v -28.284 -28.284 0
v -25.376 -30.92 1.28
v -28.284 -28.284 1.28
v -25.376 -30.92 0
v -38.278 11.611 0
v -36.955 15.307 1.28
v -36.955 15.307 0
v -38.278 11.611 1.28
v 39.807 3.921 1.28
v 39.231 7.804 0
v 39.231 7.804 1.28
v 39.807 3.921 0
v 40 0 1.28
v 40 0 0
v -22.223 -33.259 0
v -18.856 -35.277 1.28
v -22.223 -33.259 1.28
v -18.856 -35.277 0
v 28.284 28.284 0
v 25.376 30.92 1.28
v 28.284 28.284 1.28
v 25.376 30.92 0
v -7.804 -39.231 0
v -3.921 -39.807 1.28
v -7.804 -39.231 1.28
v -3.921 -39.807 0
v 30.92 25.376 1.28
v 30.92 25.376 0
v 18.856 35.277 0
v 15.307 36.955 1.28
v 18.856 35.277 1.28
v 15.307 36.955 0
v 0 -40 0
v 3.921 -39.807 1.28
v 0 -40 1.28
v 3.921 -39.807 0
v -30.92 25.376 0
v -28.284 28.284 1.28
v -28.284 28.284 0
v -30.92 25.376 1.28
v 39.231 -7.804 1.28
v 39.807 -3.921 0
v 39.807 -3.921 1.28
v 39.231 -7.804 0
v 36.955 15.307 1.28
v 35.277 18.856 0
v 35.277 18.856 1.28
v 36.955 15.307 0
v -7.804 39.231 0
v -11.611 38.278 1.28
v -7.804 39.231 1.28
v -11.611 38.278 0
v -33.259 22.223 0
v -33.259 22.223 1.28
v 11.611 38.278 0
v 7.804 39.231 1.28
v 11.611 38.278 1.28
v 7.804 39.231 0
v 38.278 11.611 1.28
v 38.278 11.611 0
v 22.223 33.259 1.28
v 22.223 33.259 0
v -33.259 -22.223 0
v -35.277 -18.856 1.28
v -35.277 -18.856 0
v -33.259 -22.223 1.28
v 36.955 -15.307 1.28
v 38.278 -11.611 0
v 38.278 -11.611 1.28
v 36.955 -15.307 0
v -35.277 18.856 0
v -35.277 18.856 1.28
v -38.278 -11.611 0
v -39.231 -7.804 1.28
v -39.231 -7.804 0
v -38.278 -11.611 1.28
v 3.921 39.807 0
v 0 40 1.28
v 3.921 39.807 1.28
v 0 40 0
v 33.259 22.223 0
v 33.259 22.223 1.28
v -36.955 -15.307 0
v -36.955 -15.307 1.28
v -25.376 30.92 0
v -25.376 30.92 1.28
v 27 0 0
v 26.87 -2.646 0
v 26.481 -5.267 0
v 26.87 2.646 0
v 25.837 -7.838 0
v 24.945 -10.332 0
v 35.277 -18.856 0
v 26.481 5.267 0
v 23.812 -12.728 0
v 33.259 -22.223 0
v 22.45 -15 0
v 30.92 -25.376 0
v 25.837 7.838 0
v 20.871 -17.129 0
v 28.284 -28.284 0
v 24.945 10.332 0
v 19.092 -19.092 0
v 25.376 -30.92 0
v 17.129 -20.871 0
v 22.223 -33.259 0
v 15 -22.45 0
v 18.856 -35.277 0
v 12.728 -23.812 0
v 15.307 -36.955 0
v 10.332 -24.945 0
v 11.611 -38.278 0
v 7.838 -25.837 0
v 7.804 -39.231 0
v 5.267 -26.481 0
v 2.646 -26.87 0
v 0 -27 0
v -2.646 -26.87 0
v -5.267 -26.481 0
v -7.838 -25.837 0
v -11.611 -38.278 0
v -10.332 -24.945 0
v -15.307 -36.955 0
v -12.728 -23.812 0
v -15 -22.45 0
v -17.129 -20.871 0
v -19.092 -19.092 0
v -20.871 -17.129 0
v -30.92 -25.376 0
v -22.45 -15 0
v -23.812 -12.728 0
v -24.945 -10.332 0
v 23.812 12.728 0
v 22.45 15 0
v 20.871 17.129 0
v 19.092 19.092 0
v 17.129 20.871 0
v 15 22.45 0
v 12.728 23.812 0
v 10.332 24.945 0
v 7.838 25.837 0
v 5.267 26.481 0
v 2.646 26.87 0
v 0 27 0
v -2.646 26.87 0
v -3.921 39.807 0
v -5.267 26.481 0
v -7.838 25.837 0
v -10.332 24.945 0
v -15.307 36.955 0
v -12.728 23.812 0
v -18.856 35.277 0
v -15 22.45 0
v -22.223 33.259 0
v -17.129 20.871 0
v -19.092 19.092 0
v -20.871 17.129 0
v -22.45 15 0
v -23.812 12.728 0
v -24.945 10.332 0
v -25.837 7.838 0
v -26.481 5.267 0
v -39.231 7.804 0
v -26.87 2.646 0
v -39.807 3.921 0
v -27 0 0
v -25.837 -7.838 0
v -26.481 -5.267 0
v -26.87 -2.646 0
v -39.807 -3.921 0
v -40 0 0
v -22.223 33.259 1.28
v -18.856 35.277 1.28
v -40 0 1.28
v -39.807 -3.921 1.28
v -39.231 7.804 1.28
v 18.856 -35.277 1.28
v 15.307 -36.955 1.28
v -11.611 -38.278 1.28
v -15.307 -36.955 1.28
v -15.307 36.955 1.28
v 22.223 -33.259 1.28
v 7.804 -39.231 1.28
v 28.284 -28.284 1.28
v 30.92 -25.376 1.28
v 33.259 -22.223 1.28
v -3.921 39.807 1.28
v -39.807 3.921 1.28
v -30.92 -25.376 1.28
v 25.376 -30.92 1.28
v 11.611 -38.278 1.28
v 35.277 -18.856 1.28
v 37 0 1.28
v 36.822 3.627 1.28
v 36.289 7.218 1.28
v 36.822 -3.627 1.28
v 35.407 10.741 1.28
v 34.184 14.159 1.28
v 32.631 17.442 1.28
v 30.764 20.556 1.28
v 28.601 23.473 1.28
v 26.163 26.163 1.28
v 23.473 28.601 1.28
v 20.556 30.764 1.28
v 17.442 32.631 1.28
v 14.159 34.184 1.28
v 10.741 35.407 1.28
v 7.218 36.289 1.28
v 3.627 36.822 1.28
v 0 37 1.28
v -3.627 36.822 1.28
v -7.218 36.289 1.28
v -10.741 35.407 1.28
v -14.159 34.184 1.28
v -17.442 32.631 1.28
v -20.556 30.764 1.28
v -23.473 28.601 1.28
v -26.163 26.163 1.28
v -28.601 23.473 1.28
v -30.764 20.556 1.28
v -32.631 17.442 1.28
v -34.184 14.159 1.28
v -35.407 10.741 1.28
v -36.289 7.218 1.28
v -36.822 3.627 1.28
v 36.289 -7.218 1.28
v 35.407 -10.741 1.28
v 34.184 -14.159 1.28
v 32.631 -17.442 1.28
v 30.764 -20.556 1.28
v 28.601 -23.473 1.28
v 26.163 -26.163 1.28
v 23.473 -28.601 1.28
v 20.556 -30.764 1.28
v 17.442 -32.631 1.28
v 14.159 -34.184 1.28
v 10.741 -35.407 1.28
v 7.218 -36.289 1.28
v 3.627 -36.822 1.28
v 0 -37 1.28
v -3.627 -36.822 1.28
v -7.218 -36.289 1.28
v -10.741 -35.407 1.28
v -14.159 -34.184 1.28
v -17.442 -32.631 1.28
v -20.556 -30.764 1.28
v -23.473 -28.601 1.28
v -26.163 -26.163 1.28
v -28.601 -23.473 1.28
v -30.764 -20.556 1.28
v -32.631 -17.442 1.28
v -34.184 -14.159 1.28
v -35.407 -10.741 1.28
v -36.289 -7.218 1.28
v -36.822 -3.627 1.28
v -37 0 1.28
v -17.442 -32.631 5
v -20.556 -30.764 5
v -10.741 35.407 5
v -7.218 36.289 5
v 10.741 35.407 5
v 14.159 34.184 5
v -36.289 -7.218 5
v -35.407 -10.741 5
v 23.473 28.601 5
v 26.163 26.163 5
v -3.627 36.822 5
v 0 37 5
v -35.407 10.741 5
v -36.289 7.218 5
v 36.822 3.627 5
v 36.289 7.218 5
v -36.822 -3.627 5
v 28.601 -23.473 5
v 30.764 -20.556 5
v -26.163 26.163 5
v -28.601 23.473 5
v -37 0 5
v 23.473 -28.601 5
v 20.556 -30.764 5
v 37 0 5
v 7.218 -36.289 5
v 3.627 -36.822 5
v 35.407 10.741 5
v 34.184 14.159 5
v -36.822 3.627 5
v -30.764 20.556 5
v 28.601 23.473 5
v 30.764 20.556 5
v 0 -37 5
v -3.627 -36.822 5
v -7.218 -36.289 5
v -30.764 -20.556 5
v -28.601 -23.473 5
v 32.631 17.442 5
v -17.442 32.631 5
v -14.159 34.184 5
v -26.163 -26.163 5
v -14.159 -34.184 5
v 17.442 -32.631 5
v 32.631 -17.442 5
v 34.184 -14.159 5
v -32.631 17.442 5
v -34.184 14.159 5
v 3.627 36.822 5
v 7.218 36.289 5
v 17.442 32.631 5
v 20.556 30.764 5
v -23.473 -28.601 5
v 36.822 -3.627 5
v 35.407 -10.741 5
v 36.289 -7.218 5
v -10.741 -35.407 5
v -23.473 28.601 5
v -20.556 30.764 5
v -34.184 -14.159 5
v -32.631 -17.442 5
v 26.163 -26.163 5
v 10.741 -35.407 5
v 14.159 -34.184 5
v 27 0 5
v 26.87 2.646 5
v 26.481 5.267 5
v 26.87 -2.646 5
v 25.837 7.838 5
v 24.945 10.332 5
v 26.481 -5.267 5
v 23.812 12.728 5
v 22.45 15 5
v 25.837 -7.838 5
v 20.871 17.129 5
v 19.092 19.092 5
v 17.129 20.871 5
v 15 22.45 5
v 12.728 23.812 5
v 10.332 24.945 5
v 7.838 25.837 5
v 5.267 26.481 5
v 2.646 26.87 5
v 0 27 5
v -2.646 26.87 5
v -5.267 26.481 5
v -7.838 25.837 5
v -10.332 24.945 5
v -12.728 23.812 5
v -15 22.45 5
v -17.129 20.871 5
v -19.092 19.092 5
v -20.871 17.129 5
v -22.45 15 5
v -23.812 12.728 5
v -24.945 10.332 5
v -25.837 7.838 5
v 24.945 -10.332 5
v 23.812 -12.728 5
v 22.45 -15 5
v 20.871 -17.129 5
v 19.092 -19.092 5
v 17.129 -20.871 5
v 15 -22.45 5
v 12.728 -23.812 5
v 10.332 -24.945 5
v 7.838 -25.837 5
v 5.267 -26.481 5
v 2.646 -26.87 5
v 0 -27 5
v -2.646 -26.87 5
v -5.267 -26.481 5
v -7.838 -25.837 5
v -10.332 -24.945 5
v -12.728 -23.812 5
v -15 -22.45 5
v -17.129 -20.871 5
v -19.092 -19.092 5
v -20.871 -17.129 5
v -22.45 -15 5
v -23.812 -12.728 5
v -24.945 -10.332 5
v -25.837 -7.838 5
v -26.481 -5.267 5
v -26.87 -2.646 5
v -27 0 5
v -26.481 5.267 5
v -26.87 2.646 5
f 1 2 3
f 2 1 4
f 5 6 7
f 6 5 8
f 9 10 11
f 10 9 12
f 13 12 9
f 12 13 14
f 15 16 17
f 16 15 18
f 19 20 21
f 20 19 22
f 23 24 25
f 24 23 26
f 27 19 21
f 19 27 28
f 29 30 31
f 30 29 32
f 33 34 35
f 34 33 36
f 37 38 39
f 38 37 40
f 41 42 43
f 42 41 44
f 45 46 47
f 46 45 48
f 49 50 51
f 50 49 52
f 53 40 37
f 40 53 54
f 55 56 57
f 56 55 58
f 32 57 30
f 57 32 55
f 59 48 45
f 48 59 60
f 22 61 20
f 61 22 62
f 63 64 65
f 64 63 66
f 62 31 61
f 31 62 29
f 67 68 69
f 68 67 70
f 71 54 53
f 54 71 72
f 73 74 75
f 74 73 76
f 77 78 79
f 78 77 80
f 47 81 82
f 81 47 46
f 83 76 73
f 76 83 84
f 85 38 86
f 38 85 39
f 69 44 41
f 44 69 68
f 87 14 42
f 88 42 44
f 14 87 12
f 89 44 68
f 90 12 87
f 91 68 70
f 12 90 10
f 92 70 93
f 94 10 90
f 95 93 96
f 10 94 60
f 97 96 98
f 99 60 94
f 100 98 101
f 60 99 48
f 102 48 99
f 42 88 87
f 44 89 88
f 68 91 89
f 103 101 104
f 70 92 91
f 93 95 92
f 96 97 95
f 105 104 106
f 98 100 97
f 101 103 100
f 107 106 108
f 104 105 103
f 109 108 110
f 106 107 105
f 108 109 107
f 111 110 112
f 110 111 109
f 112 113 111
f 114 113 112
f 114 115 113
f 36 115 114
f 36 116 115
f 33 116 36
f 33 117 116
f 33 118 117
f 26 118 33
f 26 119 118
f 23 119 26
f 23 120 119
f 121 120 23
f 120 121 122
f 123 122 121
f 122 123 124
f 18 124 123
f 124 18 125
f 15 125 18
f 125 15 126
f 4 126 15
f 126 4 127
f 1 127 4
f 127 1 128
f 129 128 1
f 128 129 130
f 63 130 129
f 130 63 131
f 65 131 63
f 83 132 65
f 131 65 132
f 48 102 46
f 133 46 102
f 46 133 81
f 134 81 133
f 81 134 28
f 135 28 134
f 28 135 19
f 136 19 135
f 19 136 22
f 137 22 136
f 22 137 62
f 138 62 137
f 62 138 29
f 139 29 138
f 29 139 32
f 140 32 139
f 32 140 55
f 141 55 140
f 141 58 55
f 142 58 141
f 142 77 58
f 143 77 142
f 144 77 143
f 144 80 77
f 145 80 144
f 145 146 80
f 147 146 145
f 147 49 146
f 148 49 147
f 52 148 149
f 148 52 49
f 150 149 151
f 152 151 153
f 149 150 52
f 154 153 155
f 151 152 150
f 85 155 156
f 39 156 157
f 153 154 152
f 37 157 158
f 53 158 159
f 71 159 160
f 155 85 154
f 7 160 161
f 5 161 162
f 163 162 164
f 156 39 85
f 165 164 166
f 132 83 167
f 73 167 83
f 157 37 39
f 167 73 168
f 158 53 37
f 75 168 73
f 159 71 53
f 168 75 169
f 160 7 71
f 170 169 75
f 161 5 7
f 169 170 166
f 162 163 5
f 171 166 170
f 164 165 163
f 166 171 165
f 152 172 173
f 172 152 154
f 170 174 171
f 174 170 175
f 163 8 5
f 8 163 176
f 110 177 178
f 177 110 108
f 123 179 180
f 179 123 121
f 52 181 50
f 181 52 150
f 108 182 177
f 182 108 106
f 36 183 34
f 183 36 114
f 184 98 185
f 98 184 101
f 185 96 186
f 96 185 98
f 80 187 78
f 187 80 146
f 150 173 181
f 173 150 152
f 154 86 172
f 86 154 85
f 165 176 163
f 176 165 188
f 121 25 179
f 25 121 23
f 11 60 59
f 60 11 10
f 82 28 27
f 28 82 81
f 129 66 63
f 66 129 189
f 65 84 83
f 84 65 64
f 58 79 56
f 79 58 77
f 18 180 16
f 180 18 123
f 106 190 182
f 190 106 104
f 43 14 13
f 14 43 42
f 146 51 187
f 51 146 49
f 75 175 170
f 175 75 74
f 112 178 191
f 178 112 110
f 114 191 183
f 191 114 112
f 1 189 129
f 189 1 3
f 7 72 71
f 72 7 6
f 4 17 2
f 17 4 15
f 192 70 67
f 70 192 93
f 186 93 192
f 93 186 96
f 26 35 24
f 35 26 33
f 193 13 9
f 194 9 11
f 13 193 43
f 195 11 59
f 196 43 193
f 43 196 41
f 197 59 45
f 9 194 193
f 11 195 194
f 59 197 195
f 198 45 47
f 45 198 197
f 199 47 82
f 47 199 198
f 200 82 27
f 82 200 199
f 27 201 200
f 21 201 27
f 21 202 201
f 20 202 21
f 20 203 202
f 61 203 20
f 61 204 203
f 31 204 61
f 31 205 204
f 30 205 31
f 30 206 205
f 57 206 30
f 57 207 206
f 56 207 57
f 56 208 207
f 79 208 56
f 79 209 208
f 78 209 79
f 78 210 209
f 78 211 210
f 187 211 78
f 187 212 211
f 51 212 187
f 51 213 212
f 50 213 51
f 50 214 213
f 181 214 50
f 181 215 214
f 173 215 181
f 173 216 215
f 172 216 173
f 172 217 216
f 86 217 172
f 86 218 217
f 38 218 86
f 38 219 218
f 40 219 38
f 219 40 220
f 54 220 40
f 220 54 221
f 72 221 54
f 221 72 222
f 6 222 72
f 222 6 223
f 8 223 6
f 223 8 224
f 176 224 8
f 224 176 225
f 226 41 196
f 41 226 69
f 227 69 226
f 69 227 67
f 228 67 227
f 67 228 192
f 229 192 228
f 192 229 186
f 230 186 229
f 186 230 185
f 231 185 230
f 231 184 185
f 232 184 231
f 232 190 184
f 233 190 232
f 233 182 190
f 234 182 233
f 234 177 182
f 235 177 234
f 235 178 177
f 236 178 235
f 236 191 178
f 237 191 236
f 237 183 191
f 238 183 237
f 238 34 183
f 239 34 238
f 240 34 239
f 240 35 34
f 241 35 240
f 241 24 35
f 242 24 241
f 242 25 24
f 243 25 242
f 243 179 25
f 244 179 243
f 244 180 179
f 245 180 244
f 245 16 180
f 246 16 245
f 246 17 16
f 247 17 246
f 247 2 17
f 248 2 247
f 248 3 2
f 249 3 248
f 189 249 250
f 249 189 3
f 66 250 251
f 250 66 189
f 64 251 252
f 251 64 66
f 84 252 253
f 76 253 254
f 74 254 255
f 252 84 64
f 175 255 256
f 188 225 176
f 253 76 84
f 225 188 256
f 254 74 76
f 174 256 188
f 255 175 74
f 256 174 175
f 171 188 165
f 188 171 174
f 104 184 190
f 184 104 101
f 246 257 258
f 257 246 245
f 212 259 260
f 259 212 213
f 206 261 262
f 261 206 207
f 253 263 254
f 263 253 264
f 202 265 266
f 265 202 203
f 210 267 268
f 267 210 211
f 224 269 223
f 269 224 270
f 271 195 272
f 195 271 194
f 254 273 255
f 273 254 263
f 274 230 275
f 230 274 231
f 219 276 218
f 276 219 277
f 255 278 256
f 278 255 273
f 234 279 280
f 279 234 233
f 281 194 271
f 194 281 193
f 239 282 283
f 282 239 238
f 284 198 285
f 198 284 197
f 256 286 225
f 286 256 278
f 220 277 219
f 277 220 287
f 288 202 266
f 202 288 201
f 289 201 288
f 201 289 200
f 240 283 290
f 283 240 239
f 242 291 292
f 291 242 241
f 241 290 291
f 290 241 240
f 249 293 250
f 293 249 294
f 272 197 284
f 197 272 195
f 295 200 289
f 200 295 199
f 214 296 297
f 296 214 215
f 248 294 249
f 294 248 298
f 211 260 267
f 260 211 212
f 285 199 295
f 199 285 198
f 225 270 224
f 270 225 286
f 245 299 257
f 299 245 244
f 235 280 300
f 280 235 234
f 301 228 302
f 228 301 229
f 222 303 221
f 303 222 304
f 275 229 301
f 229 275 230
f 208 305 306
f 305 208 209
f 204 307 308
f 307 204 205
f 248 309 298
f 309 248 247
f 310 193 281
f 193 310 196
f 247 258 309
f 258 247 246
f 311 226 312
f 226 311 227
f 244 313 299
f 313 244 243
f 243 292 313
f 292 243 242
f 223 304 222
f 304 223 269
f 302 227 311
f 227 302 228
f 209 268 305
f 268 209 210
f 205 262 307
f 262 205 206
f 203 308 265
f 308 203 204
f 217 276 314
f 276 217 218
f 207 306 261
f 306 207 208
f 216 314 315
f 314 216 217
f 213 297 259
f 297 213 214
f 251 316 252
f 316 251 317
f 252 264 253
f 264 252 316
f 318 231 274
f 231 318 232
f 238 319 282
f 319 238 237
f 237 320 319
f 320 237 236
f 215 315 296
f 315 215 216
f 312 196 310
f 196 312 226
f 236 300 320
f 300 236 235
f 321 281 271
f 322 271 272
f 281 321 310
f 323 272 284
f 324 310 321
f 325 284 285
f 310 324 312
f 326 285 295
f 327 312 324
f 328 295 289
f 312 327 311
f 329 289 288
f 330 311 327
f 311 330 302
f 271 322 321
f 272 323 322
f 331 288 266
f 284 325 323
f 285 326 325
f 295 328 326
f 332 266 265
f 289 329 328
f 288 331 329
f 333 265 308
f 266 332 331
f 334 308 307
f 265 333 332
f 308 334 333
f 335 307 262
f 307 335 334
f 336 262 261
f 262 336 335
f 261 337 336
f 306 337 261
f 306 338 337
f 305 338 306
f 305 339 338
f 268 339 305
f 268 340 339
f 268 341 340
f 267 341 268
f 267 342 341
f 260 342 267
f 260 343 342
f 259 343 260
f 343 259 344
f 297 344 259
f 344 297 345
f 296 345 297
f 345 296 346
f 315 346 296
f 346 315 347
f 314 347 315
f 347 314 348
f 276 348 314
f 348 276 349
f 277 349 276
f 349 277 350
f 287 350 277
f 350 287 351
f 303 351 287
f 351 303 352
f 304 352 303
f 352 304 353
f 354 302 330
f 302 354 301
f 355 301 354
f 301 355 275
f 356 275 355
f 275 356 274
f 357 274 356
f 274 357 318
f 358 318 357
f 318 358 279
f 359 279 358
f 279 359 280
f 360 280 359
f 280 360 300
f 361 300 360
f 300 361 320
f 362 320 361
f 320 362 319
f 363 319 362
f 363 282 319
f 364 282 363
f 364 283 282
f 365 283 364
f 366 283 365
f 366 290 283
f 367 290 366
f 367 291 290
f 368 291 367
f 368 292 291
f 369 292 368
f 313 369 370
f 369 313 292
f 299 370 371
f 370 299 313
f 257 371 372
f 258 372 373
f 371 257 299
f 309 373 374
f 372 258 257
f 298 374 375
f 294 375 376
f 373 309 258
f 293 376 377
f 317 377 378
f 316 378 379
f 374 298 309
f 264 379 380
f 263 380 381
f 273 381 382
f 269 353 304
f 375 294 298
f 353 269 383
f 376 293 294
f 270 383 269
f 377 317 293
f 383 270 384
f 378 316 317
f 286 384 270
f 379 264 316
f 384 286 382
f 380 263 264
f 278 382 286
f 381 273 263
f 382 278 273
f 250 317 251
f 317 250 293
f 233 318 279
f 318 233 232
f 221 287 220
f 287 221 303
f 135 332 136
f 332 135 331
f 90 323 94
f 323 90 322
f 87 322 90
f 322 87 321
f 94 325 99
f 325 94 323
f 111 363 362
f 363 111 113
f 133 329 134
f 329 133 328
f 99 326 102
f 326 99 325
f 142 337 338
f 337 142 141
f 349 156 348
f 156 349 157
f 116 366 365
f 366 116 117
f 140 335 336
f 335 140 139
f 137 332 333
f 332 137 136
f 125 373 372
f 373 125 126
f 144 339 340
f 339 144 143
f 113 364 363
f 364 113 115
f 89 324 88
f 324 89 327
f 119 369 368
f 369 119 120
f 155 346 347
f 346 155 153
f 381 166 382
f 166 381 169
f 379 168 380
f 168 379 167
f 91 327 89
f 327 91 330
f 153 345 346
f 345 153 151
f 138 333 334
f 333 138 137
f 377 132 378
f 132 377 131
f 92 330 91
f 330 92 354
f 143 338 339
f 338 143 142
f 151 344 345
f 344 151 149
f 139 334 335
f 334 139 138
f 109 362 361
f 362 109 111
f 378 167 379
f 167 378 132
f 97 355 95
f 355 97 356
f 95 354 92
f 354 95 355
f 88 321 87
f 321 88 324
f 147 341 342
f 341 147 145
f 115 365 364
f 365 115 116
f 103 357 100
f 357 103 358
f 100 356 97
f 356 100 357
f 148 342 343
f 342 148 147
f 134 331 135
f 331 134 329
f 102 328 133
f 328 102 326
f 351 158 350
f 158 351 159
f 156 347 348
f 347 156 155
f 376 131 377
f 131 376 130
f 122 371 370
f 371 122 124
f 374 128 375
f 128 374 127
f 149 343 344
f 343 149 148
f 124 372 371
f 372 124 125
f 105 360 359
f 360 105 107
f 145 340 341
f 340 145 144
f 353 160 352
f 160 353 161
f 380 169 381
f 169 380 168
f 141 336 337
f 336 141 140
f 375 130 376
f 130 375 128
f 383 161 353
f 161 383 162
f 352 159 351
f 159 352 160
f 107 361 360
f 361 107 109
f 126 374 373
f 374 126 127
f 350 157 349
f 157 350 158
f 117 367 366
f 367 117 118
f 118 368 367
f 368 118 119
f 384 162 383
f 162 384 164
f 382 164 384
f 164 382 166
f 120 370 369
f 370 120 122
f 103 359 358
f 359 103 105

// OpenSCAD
$fn=64;
difference()
{
    union(){
        cylinder(r=80/2, h=0.32*4);
        cylinder(r=74/2, h=5);
    }
    translate([0,0,-1]) cylinder(r=54/2, h=20);
}
